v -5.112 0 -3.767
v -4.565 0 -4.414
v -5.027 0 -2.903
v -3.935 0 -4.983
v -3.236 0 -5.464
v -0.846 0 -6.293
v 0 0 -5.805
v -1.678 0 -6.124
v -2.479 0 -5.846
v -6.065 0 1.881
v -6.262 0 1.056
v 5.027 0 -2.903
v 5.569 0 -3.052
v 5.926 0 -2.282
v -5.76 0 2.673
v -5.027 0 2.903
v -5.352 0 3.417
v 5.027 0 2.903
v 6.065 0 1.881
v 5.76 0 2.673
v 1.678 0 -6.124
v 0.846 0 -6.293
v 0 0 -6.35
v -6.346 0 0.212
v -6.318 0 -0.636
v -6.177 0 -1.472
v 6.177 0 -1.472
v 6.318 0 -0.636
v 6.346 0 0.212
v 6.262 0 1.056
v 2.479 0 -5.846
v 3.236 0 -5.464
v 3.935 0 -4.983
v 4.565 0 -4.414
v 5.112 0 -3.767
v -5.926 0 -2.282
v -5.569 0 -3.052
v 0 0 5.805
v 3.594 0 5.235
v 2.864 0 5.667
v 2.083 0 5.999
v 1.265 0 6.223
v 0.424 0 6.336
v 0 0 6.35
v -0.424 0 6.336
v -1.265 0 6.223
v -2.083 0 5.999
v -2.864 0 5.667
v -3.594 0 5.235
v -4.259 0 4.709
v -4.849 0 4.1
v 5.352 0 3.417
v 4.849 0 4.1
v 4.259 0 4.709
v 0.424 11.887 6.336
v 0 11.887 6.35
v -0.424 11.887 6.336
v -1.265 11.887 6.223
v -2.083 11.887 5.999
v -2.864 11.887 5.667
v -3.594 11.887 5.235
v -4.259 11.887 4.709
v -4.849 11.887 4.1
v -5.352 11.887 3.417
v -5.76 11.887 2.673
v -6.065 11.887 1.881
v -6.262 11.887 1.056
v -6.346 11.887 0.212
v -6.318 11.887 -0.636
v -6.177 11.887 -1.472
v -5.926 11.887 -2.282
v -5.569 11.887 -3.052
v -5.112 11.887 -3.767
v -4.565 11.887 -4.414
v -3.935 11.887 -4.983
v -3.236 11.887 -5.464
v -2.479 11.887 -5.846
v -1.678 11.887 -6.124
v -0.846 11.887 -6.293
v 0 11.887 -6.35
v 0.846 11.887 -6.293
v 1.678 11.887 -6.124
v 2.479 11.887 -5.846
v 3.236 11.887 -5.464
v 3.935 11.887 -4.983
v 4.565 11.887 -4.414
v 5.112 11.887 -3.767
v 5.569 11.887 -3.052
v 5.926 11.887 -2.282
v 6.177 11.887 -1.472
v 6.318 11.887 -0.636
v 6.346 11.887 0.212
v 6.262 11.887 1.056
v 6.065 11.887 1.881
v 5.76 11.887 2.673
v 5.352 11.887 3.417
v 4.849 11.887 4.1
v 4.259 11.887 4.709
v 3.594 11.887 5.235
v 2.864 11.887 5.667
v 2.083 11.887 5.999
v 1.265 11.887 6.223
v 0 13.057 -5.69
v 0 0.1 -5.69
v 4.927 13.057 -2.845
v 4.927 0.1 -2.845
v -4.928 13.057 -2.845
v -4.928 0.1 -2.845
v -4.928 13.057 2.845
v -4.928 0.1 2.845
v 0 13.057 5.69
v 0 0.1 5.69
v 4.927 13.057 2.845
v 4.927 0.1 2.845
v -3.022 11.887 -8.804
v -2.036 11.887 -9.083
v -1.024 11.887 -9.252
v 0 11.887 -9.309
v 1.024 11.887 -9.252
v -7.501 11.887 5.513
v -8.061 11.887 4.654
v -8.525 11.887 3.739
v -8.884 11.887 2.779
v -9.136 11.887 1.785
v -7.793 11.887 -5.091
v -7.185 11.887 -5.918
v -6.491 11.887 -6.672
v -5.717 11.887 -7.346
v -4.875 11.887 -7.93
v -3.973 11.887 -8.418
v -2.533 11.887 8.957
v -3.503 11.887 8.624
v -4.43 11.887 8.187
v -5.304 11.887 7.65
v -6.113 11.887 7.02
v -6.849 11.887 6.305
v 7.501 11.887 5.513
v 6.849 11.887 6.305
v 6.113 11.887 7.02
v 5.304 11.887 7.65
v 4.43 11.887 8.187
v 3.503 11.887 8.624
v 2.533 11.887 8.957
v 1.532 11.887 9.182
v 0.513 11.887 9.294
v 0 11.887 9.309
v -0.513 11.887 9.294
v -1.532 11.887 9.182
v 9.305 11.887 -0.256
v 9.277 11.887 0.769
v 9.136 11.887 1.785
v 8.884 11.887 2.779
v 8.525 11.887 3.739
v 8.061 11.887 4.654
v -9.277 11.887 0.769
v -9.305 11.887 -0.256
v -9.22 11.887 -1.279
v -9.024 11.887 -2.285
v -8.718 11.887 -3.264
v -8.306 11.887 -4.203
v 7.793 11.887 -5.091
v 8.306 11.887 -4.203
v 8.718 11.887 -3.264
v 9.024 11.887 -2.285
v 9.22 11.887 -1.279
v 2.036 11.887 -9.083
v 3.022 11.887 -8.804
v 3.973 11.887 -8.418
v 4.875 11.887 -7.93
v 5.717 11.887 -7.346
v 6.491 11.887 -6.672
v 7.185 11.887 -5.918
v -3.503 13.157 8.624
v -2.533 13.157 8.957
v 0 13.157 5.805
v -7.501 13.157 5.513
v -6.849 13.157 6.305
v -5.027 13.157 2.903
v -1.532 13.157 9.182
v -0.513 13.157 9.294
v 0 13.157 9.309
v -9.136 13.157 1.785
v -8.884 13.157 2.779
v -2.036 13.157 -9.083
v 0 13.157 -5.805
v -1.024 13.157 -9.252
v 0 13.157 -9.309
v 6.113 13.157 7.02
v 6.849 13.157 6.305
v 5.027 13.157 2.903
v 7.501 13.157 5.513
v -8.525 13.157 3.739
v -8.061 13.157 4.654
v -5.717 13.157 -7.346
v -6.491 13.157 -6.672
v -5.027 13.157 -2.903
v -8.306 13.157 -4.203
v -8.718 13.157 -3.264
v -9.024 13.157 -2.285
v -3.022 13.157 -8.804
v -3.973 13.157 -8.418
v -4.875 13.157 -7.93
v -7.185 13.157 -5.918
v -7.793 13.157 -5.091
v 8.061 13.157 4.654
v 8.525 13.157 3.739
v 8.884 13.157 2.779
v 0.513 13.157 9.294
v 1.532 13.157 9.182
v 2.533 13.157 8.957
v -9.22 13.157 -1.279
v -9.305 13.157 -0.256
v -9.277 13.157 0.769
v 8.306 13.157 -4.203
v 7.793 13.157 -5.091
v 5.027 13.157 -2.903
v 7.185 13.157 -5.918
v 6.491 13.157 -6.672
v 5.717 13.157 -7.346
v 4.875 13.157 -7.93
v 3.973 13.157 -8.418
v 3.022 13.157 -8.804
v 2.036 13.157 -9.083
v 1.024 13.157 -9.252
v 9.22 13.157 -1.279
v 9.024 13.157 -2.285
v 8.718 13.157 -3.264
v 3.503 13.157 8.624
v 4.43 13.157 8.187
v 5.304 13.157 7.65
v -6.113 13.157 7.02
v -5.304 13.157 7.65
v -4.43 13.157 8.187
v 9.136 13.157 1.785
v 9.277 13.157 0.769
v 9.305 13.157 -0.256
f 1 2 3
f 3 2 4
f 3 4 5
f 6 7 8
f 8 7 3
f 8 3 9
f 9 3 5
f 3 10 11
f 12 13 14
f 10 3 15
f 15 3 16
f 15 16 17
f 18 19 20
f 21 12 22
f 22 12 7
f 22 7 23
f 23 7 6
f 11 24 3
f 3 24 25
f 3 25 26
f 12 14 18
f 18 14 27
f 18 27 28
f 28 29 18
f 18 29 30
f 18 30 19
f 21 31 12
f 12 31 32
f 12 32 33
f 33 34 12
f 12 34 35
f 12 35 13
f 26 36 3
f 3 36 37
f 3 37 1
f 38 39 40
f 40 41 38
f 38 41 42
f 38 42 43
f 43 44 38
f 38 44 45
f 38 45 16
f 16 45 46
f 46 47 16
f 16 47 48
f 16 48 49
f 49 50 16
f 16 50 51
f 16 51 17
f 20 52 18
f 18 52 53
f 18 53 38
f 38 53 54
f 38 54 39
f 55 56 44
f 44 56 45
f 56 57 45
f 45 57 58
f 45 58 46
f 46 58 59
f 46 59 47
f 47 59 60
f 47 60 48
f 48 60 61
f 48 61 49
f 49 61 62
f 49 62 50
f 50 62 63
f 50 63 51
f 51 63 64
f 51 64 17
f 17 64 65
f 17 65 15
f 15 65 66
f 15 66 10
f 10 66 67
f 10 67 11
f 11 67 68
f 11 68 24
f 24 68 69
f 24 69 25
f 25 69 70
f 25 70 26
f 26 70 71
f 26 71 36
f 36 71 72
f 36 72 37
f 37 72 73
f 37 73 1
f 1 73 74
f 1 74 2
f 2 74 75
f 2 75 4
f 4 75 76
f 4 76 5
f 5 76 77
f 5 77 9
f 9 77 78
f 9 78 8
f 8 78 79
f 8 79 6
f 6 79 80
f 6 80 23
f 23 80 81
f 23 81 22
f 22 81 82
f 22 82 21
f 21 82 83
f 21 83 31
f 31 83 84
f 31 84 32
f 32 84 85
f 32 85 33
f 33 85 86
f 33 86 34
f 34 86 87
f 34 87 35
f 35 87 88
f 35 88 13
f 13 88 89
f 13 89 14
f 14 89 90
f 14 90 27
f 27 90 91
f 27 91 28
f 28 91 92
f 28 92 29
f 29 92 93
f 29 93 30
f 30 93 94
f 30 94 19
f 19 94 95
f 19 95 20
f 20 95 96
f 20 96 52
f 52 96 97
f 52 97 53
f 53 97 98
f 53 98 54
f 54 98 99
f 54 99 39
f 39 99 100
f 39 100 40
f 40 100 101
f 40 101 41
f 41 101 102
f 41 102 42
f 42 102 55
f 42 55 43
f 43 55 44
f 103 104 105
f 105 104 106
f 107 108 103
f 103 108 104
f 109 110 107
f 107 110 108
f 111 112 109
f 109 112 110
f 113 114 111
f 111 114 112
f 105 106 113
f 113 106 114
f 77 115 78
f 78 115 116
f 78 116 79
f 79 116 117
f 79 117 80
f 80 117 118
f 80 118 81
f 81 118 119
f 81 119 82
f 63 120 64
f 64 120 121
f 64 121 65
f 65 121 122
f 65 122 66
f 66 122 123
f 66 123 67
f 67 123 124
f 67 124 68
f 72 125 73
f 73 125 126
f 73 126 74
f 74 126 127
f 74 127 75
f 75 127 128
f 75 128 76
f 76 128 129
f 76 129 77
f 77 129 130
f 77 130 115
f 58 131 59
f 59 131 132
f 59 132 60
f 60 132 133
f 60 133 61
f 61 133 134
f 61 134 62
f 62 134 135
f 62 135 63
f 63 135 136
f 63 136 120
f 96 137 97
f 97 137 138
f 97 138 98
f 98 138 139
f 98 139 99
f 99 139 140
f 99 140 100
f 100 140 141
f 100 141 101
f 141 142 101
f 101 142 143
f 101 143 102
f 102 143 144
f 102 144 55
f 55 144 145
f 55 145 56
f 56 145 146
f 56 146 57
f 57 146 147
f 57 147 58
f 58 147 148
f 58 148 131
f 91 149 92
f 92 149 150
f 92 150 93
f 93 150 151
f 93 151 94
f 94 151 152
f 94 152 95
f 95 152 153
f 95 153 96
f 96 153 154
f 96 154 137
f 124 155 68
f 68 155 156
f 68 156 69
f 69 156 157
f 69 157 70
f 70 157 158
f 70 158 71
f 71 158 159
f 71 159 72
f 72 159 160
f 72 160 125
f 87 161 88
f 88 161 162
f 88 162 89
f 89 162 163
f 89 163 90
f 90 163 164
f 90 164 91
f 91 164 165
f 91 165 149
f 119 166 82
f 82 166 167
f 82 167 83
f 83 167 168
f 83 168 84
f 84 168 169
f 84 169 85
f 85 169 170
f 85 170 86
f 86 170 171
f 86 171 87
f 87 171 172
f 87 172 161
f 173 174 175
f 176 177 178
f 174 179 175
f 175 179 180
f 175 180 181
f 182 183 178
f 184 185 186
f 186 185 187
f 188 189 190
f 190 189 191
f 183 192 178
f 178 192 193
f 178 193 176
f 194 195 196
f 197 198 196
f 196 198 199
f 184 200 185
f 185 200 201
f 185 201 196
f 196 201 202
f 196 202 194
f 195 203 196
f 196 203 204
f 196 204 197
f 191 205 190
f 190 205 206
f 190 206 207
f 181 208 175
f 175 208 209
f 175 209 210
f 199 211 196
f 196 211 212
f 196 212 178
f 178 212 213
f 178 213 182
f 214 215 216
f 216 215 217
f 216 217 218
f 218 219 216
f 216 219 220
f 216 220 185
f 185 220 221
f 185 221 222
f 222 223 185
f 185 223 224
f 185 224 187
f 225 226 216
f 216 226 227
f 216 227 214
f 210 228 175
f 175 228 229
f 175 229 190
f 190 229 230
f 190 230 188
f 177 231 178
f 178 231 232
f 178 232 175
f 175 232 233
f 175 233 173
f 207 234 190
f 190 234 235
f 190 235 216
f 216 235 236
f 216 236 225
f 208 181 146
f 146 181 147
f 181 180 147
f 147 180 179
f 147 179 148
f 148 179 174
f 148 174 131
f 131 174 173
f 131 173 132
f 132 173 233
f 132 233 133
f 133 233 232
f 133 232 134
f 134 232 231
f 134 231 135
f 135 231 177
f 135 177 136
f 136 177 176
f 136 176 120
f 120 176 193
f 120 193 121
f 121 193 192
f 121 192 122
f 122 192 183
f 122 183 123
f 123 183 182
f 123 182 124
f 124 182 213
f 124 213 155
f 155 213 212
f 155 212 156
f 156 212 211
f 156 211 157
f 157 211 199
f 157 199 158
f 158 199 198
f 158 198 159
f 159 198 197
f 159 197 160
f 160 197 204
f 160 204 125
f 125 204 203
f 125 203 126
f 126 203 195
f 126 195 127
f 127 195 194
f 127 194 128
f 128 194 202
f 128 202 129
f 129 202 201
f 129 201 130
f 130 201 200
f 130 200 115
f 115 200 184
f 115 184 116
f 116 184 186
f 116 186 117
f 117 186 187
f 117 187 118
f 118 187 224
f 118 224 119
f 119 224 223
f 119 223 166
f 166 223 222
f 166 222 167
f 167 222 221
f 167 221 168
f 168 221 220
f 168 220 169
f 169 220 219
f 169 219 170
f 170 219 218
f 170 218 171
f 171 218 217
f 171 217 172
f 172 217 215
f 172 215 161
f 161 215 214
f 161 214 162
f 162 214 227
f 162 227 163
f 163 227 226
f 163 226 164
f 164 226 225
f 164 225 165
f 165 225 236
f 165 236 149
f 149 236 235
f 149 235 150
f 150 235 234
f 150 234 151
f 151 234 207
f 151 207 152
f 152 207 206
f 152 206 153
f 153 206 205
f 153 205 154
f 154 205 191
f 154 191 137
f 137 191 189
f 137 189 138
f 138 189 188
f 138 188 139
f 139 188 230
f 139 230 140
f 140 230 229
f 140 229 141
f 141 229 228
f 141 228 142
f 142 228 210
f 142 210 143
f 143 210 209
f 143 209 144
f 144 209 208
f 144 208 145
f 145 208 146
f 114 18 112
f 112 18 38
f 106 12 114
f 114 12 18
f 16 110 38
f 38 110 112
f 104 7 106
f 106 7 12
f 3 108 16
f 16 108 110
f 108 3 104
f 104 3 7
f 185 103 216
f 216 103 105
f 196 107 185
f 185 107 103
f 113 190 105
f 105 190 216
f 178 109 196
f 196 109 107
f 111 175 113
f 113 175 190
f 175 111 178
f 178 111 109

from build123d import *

# Parameters (mm, degrees)
SKETCH1_R           = 6.35
BOSS_EXTRUDE1_DEPTH = 11.8872
SKETCH2_R           = 9.308550363
BOSS_EXTRUDE2_DEPTH = 1.27
CHAMFER1_SIZE       = 0.1
CHAMFER2_SIZE       = 0.1


with BuildPart() as part:
    # Sketch1 → Boss-Extrude1 (new body)
    with BuildSketch(Plane(origin=(0, 0, 0), x_dir=(1, 0, 0), z_dir=(0, 1, 0))):
        with Locations(Location((0, 0, 0), (0, 0, 270))):
            Circle(SKETCH1_R)
        Polygon((0, 5.689786881), (-4.927499981, 2.84489344), (-4.927499981, -2.84489344), (0, -5.689786881), (4.927499981, -2.84489344), (4.927499981, 2.84489344), align=None, mode=Mode.SUBTRACT)
    extrude(amount=BOSS_EXTRUDE1_DEPTH)

    # Sketch2 → Boss-Extrude2 (add)
    with BuildSketch(Plane(origin=(0, 11.8872, 0), x_dir=(1, 0, 0), z_dir=(0, 1, 0))):
        with Locations(Location((0, 0, 0), (0, 0, 270))):
            Circle(SKETCH2_R)
        Polygon((0, 5.689786881), (-4.927499981, 2.84489344), (-4.927499981, -2.84489344), (0, -5.689786881), (4.927499981, -2.84489344), (4.927499981, 2.84489344), align=None, mode=Mode.SUBTRACT)
    extrude(amount=BOSS_EXTRUDE2_DEPTH)

    # Chamfer1
    chamfer1_edges = [part.edges().sort_by_distance(p)[0] for p in [
        (-4.927499981, 0, 0),
        (-2.46374999, 0, 4.267340161),
        (2.463749991, 0, 4.267340161),
        (4.927499981, 0, 0),
        (2.46374999, 0, -4.267340161),
        (-2.463749991, 0, -4.267340161),
    ]]
    chamfer(chamfer1_edges, length=CHAMFER1_SIZE)

    # Chamfer2
    chamfer2_edges = [part.edges().sort_by_distance(p)[0] for p in [
        (2.46374999, 13.1572, -4.267340161),
        (-2.463749991, 13.1572, -4.267340161),
        (-4.927499981, 13.1572, 0),
        (-2.46374999, 13.1572, 4.267340161),
        (2.463749991, 13.1572, 4.267340161),
        (4.927499981, 13.1572, 0),
    ]]
    chamfer(chamfer2_edges, length=CHAMFER2_SIZE)


solid = part.part
